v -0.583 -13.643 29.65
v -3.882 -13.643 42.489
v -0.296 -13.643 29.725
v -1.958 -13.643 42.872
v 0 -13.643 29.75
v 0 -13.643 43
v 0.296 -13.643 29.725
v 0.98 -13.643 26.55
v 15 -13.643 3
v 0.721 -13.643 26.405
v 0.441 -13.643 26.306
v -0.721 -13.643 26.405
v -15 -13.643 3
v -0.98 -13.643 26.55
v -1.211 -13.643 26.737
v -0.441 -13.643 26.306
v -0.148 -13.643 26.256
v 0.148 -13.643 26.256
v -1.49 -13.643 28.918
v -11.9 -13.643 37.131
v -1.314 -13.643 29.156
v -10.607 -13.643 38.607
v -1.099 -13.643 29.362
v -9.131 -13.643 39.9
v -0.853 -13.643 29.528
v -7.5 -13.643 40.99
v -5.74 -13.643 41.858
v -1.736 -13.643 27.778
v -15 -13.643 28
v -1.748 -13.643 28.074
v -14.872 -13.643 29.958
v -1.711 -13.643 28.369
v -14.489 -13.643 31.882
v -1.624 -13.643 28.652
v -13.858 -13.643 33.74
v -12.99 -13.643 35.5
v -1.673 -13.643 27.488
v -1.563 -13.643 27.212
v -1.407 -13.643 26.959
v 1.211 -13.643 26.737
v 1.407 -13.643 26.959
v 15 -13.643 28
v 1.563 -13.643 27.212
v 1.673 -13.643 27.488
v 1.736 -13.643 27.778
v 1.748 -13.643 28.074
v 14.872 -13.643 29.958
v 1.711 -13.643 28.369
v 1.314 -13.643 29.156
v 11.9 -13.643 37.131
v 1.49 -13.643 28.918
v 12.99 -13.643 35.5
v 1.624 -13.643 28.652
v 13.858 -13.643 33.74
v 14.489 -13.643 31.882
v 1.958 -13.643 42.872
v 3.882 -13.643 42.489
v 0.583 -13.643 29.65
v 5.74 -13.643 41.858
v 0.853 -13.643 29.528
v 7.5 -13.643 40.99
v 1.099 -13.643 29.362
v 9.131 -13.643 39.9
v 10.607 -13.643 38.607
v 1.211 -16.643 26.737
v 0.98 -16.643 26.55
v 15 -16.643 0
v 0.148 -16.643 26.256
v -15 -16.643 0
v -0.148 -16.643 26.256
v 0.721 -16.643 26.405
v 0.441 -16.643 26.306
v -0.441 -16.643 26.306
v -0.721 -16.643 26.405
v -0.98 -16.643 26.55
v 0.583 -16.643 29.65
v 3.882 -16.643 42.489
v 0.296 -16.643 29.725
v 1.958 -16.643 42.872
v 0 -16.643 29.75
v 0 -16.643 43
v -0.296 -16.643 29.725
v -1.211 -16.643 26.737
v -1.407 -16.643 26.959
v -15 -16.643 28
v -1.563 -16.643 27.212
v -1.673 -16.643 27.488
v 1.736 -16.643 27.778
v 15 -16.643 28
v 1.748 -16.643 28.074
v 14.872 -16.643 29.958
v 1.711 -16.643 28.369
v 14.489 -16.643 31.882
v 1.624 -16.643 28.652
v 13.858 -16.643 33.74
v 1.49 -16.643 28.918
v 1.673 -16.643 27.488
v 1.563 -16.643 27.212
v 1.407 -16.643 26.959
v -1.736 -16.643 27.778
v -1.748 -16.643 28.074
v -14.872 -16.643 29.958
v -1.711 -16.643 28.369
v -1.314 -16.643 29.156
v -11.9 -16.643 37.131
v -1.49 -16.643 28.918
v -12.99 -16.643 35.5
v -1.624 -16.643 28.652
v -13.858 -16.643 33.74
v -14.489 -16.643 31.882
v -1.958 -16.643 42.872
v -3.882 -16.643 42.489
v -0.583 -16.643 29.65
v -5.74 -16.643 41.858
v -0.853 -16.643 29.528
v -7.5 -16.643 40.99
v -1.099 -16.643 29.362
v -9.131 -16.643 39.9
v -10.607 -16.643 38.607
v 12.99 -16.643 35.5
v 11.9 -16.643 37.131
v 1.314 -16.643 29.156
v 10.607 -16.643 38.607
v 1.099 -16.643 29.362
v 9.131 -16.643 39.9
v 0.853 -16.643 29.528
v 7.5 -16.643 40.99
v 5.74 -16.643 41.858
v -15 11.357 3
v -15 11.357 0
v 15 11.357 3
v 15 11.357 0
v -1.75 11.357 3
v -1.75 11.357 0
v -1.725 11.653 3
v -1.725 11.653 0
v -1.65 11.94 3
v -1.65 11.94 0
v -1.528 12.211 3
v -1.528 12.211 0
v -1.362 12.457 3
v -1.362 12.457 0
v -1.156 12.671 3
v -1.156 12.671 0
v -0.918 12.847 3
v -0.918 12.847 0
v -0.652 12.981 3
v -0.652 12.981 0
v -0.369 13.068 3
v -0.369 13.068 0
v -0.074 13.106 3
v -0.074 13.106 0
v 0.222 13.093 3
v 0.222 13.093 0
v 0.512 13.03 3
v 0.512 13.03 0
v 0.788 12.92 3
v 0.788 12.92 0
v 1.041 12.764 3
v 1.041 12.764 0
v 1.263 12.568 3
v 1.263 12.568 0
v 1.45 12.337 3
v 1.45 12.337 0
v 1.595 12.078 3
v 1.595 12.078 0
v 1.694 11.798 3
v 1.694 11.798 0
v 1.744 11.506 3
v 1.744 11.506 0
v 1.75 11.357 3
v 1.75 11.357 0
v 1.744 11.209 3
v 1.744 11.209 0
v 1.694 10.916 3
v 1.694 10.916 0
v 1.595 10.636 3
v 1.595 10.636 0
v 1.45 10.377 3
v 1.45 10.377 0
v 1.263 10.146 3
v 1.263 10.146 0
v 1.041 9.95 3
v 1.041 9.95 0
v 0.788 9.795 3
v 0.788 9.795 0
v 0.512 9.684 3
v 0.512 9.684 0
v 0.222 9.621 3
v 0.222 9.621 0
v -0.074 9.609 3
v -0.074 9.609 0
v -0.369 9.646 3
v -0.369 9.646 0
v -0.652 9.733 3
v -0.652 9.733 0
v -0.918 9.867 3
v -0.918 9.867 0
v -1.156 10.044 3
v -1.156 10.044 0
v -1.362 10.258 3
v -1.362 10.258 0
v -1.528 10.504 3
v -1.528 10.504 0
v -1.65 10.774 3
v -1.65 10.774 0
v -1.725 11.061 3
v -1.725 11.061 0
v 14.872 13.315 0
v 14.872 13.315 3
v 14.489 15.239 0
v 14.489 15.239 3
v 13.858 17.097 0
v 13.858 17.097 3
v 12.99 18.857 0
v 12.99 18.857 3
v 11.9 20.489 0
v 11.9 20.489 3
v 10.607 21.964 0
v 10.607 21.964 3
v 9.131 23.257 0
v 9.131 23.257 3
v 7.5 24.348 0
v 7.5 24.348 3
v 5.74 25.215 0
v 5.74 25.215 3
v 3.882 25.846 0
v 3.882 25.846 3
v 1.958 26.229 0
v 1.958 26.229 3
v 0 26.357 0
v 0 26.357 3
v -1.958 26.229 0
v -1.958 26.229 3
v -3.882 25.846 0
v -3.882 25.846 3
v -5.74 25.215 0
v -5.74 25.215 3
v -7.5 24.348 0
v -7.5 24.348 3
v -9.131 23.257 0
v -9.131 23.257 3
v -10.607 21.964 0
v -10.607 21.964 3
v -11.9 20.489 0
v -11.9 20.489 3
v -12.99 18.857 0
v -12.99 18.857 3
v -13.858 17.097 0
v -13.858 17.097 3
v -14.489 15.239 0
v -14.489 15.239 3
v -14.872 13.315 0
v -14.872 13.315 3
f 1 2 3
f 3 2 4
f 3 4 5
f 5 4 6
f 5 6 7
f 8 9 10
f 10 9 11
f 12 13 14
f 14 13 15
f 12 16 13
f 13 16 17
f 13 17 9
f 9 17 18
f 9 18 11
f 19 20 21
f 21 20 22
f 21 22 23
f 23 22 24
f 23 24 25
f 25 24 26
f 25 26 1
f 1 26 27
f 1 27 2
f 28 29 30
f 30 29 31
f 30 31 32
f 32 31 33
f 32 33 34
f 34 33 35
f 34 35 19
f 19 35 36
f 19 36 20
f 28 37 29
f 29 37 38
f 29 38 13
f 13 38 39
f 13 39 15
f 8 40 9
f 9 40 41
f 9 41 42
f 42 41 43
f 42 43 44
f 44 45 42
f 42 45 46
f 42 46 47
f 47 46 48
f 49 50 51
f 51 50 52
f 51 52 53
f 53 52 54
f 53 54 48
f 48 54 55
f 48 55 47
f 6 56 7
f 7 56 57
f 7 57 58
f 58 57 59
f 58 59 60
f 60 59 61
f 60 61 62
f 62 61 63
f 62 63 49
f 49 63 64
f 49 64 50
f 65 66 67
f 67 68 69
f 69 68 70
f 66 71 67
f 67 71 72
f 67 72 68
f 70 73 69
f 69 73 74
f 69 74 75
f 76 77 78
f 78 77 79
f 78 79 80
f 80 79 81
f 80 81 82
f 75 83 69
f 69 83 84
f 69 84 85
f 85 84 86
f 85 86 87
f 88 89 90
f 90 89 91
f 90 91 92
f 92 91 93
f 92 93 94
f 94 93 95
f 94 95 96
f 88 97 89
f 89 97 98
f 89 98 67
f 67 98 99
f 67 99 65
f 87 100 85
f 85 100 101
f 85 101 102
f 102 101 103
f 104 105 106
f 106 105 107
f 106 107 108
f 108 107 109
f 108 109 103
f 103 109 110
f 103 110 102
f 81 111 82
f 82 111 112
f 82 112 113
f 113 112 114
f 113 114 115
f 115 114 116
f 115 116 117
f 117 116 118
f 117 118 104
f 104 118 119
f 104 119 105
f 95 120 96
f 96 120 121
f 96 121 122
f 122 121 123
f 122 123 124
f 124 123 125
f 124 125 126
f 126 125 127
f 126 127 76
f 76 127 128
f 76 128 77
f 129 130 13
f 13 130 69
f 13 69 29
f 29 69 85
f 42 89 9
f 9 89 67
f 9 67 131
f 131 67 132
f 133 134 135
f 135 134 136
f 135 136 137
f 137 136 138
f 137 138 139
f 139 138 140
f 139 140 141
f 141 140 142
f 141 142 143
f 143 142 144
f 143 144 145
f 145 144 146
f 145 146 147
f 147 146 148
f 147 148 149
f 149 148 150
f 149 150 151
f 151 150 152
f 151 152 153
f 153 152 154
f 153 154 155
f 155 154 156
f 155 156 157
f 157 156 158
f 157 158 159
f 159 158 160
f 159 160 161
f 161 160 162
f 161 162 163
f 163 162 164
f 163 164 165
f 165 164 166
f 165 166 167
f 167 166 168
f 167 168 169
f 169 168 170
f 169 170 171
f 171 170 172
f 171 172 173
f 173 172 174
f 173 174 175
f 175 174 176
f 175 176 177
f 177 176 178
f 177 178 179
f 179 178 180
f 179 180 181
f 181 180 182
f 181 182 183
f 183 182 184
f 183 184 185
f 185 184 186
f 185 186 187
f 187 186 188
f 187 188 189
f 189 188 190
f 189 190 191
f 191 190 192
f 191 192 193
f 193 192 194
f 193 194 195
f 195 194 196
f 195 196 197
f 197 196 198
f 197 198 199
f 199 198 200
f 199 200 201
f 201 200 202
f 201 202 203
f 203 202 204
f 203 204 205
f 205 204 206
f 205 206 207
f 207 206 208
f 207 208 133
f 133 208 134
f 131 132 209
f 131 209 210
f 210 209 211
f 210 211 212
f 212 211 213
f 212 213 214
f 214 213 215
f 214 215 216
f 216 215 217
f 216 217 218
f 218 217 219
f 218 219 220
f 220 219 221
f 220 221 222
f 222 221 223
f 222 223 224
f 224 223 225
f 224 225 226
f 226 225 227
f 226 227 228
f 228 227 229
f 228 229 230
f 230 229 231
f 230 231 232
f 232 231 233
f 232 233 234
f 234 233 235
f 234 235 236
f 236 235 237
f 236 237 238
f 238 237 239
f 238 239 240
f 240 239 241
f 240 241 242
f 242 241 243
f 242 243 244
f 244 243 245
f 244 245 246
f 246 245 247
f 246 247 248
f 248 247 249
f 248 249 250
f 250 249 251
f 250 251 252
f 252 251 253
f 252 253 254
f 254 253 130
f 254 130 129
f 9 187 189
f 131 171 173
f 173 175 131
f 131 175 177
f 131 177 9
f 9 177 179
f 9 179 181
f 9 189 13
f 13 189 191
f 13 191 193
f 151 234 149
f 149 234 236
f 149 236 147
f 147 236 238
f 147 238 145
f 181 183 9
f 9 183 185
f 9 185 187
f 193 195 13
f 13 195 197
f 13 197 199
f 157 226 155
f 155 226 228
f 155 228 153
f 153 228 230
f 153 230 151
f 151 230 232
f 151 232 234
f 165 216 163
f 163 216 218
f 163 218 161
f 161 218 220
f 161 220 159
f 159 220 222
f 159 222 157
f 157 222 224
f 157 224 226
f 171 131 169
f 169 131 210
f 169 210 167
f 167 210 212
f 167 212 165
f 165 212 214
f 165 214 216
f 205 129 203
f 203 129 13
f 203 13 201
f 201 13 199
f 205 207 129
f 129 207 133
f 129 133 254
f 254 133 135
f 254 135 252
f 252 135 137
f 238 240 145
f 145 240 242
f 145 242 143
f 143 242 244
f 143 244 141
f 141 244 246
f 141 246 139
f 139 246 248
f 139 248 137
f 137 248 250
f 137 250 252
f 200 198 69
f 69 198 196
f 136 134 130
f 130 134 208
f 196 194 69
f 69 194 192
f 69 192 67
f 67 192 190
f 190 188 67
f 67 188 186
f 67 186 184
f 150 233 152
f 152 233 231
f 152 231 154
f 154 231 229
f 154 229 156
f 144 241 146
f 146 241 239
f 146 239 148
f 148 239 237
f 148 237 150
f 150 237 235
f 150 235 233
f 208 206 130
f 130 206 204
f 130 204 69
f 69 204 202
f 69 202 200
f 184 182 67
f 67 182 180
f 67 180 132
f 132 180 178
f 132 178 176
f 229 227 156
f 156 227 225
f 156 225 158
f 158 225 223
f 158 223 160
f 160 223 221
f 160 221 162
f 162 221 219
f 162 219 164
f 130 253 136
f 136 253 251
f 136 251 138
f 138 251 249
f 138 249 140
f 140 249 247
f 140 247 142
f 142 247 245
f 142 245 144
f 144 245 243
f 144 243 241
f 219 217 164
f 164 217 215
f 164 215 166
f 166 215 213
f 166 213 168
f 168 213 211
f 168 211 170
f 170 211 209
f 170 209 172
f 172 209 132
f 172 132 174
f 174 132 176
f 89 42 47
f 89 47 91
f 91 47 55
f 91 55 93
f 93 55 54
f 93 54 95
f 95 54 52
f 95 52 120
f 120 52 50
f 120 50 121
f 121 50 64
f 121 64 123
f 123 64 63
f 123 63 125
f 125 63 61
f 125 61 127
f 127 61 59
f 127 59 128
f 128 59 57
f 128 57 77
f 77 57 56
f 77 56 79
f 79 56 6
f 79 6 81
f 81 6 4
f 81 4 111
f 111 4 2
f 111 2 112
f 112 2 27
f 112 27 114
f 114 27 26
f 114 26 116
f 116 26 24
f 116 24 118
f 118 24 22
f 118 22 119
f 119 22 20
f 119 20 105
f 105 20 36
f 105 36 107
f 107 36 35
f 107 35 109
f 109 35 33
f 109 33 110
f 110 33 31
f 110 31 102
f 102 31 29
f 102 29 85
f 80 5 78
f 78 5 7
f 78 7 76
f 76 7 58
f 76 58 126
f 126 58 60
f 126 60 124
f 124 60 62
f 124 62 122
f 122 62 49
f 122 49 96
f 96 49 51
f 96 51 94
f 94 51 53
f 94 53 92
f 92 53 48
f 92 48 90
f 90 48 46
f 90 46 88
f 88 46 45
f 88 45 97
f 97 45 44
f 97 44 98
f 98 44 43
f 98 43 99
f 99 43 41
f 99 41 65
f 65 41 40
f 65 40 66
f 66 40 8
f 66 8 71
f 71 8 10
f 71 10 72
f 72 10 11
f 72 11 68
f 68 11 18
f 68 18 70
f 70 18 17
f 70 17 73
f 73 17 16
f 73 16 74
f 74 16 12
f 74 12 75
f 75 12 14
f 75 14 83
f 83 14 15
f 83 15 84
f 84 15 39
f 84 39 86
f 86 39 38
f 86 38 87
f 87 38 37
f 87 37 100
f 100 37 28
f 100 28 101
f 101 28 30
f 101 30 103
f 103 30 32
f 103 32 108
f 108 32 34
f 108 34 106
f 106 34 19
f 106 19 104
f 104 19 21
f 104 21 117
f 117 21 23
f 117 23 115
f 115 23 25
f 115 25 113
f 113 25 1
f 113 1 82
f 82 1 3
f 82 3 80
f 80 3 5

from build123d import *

# Parameters (mm, degrees)
ESBO_O1_R                  = 1.75
RESSALTO_EXTRUS_O1_DEPTH   = 3
ESBO_O2_W                  = 30
ESBO_O2_H                  = 3
RESSALTO_EXTRUS_O2_DEPTH   = 43
CORTE_EXTRUS_O1_DEPTH      = 61.613529843
CORTE_EXTRUS_O1_DEPTH_BACK = 61.613529843
ESBO_O4_R                  = 1.75
CORTE_EXTRUS_O2_DEPTH      = 61.613529843


with BuildPart() as part:
    # Esboço1 → Ressalto-extrusão1 (new body)
    with BuildSketch(Plane.XY):
        with BuildLine():
            Line((-15, 11.357178844), (-15, -13.642821156))
            Line((-15, -13.642821156), (15, -13.642821156))
            Line((15, -13.642821156), (15, 11.357178844))
            ThreePointArc((15, 11.357178844), (0, 26.357178844), (-15, 11.357178844))
        make_face()
        with Locations((0, 11.357178844)):
            Circle(ESBO_O1_R, mode=Mode.SUBTRACT)
    extrude(amount=RESSALTO_EXTRUS_O1_DEPTH)

    # Esboço2 → Ressalto-extrusão2 (add)
    with BuildSketch(Plane(origin=(0, 0, 0), x_dir=(-1, 0, 0), z_dir=(0, 0, -1))):
        with Locations((0, -15.142821156)):
            Rectangle(ESBO_O2_W, ESBO_O2_H)
    extrude(amount=-RESSALTO_EXTRUS_O2_DEPTH)

    # Esboço3 → Corte-extrusão1 (cut, two sides: drawn at the far end of the back side and taken through both)
    with BuildSketch(Plane(origin=(0, -13.642821156, 0), x_dir=(1, 0, 0), z_dir=(0, 1, 0)).offset(-CORTE_EXTRUS_O1_DEPTH_BACK)):
        with BuildLine():
            Line((15, -43), (15, -28))
            ThreePointArc((15, -28), (10.606601736, -38.606601699), (5.3e-08, -43))
            Line((5.3e-08, -43), (15, -43))
        make_face()
        with BuildLine():
            Line((-15, -43), (5.3e-08, -43))
            ThreePointArc((5.3e-08, -43), (-10.606601699, -38.606601736), (-15, -28))
            Line((-15, -28), (-15, -43))
        make_face()
    extrude(amount=CORTE_EXTRUS_O1_DEPTH + CORTE_EXTRUS_O1_DEPTH_BACK, mode=Mode.SUBTRACT)

    # Esboço4 → Corte-extrusão2 (cut, through all)
    with BuildSketch(Plane(origin=(0, -13.642821156, 0), x_dir=(1, 0, 0), z_dir=(0, 1, 0))):
        with Locations(Location((0, -28, 0), (0, 0, 270))):
            Circle(ESBO_O4_R)
    extrude(amount=-CORTE_EXTRUS_O2_DEPTH, mode=Mode.SUBTRACT)


solid = part.part
